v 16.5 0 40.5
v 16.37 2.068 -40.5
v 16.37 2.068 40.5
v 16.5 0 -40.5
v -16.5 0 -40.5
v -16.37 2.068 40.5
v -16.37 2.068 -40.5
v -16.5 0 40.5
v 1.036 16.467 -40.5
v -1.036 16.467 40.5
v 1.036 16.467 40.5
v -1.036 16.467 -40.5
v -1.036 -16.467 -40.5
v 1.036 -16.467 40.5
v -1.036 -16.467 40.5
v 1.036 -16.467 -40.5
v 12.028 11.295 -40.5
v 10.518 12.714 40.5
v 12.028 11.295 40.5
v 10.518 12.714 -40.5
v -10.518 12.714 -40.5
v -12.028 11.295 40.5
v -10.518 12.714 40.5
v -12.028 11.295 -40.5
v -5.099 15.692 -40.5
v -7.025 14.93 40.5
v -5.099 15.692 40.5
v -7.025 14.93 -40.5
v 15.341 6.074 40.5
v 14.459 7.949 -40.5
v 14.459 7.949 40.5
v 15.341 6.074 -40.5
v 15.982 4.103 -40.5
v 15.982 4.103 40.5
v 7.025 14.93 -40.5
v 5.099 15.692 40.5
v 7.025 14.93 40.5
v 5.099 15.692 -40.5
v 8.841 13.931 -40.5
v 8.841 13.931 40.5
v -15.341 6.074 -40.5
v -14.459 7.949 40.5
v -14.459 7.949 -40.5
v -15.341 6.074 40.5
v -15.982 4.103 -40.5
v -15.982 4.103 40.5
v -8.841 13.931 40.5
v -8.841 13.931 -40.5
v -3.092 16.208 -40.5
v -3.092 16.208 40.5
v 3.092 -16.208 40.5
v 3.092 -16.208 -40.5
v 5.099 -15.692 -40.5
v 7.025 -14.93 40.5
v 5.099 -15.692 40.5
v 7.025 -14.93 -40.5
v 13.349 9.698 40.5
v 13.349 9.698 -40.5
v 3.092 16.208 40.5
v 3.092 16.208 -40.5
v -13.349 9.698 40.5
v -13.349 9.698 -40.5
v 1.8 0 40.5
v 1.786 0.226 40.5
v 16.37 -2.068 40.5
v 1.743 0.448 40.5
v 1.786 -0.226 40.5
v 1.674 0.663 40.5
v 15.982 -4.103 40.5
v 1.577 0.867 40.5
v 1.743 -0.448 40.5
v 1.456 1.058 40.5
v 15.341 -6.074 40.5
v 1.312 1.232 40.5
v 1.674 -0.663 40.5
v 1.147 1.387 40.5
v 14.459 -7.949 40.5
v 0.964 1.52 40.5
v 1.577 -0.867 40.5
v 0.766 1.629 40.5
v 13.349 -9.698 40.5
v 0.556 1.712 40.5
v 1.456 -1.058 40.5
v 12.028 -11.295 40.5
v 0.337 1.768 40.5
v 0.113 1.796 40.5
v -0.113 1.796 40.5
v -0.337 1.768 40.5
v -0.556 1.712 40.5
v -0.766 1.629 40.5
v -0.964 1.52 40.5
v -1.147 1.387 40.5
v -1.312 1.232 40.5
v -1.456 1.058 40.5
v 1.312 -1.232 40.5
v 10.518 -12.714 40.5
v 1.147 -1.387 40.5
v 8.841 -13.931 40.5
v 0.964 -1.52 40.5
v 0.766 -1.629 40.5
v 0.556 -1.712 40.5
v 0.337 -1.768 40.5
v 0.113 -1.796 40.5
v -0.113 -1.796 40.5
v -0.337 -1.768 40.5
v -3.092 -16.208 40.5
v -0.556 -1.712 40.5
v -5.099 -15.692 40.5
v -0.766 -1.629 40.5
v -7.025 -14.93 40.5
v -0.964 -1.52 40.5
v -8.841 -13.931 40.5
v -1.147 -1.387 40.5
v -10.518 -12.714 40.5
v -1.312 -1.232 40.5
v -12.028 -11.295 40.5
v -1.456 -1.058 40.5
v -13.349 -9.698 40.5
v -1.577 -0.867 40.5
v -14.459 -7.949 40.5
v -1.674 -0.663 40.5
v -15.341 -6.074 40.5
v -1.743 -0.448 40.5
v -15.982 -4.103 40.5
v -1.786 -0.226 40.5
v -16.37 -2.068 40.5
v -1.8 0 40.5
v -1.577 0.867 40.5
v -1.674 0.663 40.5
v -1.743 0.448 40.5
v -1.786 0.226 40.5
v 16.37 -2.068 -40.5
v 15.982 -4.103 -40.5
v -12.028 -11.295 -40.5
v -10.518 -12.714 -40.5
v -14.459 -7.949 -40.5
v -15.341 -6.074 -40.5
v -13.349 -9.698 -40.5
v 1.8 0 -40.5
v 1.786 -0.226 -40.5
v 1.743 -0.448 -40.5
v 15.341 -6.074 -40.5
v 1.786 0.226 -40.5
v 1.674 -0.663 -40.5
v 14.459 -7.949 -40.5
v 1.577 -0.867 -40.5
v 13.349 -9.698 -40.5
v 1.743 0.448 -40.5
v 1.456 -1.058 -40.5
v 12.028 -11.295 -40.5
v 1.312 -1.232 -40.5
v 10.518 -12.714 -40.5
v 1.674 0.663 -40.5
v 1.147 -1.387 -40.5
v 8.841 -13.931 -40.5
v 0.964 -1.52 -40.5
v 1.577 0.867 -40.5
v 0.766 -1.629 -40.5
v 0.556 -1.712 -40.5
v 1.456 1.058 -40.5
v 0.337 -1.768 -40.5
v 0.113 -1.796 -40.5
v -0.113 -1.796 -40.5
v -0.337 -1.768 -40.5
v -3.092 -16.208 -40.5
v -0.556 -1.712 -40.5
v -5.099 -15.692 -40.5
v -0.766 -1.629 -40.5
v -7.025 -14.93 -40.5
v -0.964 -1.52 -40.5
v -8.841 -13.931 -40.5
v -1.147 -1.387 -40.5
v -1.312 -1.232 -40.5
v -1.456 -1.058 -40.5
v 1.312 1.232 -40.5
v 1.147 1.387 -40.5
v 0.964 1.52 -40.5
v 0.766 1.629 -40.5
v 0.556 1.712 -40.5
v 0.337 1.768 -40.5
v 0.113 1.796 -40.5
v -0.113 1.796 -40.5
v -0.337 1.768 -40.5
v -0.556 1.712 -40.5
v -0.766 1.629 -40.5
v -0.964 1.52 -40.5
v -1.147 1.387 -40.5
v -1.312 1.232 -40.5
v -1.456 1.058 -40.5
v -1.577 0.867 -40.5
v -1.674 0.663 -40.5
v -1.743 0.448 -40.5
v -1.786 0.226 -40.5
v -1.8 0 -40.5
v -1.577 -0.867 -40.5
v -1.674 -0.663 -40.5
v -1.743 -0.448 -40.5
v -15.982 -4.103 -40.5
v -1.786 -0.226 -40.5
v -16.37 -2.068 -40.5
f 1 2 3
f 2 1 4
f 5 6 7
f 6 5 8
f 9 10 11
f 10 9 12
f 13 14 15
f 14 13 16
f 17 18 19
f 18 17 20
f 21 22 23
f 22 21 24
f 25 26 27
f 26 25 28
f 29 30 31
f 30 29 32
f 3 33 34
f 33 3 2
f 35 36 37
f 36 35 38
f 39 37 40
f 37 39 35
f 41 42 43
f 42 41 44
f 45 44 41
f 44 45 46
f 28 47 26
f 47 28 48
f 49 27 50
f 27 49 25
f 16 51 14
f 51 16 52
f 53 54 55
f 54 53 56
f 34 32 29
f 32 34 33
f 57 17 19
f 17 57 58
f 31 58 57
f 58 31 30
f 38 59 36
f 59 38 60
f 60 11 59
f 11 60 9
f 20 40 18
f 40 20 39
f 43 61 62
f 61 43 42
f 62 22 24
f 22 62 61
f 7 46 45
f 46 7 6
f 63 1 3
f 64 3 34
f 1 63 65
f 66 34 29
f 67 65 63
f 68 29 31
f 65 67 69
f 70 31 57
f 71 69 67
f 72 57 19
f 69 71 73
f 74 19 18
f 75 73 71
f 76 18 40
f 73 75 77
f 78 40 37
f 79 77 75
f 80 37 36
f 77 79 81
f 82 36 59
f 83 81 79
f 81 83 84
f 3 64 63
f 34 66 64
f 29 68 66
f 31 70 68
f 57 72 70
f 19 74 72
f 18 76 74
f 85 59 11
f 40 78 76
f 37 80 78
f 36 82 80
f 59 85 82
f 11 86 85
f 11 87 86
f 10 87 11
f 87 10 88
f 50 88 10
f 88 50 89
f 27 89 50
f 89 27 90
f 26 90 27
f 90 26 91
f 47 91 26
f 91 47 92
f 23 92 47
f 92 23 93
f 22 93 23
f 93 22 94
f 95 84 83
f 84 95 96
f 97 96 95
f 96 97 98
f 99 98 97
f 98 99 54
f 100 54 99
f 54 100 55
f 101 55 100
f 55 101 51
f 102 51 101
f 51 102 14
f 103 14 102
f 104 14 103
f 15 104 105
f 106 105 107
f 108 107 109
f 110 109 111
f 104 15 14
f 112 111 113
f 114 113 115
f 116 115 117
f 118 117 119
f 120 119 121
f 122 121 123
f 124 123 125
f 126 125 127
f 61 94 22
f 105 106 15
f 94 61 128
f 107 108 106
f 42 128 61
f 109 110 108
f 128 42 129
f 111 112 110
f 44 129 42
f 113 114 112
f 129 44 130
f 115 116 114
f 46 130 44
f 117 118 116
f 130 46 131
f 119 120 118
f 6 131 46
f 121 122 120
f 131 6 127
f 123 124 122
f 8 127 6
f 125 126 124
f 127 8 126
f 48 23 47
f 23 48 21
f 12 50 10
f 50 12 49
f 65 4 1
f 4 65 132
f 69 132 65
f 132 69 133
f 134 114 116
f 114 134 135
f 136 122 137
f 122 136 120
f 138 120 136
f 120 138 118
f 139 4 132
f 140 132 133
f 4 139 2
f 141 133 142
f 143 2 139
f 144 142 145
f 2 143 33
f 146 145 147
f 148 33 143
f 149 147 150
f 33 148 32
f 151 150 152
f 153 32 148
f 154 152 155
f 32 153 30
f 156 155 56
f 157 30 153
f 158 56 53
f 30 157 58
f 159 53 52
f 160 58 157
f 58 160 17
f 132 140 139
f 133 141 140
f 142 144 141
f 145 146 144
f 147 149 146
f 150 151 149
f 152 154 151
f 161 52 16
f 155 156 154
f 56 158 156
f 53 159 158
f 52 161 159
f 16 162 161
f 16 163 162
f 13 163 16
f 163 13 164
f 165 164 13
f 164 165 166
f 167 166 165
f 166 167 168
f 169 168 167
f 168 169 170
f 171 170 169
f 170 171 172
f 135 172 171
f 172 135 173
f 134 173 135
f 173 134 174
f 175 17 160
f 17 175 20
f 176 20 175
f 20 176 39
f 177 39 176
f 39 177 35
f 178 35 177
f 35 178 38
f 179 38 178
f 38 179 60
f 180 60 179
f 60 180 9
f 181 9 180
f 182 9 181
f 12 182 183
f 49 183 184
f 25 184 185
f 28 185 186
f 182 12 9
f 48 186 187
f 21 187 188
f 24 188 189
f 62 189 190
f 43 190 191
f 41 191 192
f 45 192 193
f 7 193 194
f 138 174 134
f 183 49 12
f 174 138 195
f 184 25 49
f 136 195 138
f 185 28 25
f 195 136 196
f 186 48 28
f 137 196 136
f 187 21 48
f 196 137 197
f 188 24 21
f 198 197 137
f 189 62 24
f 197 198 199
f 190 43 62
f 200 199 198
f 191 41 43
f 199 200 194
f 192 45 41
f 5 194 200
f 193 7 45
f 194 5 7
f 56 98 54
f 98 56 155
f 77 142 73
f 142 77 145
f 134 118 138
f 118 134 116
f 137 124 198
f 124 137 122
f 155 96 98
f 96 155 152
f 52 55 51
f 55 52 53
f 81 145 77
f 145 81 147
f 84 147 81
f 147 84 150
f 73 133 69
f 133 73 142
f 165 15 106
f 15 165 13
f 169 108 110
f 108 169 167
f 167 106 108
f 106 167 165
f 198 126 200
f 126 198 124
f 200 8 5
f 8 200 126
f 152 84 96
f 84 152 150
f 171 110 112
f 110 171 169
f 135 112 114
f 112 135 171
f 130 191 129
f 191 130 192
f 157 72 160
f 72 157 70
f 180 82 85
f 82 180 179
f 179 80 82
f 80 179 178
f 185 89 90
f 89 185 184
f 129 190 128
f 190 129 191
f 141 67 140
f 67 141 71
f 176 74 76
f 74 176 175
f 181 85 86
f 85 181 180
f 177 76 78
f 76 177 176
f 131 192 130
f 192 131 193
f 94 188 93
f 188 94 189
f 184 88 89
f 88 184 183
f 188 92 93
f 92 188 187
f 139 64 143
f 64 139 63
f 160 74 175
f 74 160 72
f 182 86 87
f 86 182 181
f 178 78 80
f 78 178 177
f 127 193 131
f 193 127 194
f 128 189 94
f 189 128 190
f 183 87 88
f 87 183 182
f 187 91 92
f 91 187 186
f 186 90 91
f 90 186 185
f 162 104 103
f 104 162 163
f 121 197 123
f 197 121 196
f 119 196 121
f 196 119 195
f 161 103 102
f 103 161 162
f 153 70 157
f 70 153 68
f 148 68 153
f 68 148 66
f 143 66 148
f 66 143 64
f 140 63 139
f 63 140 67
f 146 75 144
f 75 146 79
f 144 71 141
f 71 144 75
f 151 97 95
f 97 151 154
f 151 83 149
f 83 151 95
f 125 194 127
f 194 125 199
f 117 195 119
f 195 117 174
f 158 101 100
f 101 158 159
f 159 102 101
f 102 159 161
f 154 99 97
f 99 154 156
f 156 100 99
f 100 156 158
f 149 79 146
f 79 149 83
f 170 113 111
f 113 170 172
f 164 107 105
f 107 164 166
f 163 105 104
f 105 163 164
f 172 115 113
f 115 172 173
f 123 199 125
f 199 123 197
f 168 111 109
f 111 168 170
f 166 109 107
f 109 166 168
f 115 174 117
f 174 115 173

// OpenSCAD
$fn = 50;


difference() {
	union() {
		translate(v = [0, 0, -40.5000000000]) {
			cylinder(h = 81, r = 16.5000000000);
		}
	}
	union() {
		translate(v = [0, 0, -100.0000000000]) {
			cylinder(h = 200, r = 1.8000000000);
		}
	}
}
